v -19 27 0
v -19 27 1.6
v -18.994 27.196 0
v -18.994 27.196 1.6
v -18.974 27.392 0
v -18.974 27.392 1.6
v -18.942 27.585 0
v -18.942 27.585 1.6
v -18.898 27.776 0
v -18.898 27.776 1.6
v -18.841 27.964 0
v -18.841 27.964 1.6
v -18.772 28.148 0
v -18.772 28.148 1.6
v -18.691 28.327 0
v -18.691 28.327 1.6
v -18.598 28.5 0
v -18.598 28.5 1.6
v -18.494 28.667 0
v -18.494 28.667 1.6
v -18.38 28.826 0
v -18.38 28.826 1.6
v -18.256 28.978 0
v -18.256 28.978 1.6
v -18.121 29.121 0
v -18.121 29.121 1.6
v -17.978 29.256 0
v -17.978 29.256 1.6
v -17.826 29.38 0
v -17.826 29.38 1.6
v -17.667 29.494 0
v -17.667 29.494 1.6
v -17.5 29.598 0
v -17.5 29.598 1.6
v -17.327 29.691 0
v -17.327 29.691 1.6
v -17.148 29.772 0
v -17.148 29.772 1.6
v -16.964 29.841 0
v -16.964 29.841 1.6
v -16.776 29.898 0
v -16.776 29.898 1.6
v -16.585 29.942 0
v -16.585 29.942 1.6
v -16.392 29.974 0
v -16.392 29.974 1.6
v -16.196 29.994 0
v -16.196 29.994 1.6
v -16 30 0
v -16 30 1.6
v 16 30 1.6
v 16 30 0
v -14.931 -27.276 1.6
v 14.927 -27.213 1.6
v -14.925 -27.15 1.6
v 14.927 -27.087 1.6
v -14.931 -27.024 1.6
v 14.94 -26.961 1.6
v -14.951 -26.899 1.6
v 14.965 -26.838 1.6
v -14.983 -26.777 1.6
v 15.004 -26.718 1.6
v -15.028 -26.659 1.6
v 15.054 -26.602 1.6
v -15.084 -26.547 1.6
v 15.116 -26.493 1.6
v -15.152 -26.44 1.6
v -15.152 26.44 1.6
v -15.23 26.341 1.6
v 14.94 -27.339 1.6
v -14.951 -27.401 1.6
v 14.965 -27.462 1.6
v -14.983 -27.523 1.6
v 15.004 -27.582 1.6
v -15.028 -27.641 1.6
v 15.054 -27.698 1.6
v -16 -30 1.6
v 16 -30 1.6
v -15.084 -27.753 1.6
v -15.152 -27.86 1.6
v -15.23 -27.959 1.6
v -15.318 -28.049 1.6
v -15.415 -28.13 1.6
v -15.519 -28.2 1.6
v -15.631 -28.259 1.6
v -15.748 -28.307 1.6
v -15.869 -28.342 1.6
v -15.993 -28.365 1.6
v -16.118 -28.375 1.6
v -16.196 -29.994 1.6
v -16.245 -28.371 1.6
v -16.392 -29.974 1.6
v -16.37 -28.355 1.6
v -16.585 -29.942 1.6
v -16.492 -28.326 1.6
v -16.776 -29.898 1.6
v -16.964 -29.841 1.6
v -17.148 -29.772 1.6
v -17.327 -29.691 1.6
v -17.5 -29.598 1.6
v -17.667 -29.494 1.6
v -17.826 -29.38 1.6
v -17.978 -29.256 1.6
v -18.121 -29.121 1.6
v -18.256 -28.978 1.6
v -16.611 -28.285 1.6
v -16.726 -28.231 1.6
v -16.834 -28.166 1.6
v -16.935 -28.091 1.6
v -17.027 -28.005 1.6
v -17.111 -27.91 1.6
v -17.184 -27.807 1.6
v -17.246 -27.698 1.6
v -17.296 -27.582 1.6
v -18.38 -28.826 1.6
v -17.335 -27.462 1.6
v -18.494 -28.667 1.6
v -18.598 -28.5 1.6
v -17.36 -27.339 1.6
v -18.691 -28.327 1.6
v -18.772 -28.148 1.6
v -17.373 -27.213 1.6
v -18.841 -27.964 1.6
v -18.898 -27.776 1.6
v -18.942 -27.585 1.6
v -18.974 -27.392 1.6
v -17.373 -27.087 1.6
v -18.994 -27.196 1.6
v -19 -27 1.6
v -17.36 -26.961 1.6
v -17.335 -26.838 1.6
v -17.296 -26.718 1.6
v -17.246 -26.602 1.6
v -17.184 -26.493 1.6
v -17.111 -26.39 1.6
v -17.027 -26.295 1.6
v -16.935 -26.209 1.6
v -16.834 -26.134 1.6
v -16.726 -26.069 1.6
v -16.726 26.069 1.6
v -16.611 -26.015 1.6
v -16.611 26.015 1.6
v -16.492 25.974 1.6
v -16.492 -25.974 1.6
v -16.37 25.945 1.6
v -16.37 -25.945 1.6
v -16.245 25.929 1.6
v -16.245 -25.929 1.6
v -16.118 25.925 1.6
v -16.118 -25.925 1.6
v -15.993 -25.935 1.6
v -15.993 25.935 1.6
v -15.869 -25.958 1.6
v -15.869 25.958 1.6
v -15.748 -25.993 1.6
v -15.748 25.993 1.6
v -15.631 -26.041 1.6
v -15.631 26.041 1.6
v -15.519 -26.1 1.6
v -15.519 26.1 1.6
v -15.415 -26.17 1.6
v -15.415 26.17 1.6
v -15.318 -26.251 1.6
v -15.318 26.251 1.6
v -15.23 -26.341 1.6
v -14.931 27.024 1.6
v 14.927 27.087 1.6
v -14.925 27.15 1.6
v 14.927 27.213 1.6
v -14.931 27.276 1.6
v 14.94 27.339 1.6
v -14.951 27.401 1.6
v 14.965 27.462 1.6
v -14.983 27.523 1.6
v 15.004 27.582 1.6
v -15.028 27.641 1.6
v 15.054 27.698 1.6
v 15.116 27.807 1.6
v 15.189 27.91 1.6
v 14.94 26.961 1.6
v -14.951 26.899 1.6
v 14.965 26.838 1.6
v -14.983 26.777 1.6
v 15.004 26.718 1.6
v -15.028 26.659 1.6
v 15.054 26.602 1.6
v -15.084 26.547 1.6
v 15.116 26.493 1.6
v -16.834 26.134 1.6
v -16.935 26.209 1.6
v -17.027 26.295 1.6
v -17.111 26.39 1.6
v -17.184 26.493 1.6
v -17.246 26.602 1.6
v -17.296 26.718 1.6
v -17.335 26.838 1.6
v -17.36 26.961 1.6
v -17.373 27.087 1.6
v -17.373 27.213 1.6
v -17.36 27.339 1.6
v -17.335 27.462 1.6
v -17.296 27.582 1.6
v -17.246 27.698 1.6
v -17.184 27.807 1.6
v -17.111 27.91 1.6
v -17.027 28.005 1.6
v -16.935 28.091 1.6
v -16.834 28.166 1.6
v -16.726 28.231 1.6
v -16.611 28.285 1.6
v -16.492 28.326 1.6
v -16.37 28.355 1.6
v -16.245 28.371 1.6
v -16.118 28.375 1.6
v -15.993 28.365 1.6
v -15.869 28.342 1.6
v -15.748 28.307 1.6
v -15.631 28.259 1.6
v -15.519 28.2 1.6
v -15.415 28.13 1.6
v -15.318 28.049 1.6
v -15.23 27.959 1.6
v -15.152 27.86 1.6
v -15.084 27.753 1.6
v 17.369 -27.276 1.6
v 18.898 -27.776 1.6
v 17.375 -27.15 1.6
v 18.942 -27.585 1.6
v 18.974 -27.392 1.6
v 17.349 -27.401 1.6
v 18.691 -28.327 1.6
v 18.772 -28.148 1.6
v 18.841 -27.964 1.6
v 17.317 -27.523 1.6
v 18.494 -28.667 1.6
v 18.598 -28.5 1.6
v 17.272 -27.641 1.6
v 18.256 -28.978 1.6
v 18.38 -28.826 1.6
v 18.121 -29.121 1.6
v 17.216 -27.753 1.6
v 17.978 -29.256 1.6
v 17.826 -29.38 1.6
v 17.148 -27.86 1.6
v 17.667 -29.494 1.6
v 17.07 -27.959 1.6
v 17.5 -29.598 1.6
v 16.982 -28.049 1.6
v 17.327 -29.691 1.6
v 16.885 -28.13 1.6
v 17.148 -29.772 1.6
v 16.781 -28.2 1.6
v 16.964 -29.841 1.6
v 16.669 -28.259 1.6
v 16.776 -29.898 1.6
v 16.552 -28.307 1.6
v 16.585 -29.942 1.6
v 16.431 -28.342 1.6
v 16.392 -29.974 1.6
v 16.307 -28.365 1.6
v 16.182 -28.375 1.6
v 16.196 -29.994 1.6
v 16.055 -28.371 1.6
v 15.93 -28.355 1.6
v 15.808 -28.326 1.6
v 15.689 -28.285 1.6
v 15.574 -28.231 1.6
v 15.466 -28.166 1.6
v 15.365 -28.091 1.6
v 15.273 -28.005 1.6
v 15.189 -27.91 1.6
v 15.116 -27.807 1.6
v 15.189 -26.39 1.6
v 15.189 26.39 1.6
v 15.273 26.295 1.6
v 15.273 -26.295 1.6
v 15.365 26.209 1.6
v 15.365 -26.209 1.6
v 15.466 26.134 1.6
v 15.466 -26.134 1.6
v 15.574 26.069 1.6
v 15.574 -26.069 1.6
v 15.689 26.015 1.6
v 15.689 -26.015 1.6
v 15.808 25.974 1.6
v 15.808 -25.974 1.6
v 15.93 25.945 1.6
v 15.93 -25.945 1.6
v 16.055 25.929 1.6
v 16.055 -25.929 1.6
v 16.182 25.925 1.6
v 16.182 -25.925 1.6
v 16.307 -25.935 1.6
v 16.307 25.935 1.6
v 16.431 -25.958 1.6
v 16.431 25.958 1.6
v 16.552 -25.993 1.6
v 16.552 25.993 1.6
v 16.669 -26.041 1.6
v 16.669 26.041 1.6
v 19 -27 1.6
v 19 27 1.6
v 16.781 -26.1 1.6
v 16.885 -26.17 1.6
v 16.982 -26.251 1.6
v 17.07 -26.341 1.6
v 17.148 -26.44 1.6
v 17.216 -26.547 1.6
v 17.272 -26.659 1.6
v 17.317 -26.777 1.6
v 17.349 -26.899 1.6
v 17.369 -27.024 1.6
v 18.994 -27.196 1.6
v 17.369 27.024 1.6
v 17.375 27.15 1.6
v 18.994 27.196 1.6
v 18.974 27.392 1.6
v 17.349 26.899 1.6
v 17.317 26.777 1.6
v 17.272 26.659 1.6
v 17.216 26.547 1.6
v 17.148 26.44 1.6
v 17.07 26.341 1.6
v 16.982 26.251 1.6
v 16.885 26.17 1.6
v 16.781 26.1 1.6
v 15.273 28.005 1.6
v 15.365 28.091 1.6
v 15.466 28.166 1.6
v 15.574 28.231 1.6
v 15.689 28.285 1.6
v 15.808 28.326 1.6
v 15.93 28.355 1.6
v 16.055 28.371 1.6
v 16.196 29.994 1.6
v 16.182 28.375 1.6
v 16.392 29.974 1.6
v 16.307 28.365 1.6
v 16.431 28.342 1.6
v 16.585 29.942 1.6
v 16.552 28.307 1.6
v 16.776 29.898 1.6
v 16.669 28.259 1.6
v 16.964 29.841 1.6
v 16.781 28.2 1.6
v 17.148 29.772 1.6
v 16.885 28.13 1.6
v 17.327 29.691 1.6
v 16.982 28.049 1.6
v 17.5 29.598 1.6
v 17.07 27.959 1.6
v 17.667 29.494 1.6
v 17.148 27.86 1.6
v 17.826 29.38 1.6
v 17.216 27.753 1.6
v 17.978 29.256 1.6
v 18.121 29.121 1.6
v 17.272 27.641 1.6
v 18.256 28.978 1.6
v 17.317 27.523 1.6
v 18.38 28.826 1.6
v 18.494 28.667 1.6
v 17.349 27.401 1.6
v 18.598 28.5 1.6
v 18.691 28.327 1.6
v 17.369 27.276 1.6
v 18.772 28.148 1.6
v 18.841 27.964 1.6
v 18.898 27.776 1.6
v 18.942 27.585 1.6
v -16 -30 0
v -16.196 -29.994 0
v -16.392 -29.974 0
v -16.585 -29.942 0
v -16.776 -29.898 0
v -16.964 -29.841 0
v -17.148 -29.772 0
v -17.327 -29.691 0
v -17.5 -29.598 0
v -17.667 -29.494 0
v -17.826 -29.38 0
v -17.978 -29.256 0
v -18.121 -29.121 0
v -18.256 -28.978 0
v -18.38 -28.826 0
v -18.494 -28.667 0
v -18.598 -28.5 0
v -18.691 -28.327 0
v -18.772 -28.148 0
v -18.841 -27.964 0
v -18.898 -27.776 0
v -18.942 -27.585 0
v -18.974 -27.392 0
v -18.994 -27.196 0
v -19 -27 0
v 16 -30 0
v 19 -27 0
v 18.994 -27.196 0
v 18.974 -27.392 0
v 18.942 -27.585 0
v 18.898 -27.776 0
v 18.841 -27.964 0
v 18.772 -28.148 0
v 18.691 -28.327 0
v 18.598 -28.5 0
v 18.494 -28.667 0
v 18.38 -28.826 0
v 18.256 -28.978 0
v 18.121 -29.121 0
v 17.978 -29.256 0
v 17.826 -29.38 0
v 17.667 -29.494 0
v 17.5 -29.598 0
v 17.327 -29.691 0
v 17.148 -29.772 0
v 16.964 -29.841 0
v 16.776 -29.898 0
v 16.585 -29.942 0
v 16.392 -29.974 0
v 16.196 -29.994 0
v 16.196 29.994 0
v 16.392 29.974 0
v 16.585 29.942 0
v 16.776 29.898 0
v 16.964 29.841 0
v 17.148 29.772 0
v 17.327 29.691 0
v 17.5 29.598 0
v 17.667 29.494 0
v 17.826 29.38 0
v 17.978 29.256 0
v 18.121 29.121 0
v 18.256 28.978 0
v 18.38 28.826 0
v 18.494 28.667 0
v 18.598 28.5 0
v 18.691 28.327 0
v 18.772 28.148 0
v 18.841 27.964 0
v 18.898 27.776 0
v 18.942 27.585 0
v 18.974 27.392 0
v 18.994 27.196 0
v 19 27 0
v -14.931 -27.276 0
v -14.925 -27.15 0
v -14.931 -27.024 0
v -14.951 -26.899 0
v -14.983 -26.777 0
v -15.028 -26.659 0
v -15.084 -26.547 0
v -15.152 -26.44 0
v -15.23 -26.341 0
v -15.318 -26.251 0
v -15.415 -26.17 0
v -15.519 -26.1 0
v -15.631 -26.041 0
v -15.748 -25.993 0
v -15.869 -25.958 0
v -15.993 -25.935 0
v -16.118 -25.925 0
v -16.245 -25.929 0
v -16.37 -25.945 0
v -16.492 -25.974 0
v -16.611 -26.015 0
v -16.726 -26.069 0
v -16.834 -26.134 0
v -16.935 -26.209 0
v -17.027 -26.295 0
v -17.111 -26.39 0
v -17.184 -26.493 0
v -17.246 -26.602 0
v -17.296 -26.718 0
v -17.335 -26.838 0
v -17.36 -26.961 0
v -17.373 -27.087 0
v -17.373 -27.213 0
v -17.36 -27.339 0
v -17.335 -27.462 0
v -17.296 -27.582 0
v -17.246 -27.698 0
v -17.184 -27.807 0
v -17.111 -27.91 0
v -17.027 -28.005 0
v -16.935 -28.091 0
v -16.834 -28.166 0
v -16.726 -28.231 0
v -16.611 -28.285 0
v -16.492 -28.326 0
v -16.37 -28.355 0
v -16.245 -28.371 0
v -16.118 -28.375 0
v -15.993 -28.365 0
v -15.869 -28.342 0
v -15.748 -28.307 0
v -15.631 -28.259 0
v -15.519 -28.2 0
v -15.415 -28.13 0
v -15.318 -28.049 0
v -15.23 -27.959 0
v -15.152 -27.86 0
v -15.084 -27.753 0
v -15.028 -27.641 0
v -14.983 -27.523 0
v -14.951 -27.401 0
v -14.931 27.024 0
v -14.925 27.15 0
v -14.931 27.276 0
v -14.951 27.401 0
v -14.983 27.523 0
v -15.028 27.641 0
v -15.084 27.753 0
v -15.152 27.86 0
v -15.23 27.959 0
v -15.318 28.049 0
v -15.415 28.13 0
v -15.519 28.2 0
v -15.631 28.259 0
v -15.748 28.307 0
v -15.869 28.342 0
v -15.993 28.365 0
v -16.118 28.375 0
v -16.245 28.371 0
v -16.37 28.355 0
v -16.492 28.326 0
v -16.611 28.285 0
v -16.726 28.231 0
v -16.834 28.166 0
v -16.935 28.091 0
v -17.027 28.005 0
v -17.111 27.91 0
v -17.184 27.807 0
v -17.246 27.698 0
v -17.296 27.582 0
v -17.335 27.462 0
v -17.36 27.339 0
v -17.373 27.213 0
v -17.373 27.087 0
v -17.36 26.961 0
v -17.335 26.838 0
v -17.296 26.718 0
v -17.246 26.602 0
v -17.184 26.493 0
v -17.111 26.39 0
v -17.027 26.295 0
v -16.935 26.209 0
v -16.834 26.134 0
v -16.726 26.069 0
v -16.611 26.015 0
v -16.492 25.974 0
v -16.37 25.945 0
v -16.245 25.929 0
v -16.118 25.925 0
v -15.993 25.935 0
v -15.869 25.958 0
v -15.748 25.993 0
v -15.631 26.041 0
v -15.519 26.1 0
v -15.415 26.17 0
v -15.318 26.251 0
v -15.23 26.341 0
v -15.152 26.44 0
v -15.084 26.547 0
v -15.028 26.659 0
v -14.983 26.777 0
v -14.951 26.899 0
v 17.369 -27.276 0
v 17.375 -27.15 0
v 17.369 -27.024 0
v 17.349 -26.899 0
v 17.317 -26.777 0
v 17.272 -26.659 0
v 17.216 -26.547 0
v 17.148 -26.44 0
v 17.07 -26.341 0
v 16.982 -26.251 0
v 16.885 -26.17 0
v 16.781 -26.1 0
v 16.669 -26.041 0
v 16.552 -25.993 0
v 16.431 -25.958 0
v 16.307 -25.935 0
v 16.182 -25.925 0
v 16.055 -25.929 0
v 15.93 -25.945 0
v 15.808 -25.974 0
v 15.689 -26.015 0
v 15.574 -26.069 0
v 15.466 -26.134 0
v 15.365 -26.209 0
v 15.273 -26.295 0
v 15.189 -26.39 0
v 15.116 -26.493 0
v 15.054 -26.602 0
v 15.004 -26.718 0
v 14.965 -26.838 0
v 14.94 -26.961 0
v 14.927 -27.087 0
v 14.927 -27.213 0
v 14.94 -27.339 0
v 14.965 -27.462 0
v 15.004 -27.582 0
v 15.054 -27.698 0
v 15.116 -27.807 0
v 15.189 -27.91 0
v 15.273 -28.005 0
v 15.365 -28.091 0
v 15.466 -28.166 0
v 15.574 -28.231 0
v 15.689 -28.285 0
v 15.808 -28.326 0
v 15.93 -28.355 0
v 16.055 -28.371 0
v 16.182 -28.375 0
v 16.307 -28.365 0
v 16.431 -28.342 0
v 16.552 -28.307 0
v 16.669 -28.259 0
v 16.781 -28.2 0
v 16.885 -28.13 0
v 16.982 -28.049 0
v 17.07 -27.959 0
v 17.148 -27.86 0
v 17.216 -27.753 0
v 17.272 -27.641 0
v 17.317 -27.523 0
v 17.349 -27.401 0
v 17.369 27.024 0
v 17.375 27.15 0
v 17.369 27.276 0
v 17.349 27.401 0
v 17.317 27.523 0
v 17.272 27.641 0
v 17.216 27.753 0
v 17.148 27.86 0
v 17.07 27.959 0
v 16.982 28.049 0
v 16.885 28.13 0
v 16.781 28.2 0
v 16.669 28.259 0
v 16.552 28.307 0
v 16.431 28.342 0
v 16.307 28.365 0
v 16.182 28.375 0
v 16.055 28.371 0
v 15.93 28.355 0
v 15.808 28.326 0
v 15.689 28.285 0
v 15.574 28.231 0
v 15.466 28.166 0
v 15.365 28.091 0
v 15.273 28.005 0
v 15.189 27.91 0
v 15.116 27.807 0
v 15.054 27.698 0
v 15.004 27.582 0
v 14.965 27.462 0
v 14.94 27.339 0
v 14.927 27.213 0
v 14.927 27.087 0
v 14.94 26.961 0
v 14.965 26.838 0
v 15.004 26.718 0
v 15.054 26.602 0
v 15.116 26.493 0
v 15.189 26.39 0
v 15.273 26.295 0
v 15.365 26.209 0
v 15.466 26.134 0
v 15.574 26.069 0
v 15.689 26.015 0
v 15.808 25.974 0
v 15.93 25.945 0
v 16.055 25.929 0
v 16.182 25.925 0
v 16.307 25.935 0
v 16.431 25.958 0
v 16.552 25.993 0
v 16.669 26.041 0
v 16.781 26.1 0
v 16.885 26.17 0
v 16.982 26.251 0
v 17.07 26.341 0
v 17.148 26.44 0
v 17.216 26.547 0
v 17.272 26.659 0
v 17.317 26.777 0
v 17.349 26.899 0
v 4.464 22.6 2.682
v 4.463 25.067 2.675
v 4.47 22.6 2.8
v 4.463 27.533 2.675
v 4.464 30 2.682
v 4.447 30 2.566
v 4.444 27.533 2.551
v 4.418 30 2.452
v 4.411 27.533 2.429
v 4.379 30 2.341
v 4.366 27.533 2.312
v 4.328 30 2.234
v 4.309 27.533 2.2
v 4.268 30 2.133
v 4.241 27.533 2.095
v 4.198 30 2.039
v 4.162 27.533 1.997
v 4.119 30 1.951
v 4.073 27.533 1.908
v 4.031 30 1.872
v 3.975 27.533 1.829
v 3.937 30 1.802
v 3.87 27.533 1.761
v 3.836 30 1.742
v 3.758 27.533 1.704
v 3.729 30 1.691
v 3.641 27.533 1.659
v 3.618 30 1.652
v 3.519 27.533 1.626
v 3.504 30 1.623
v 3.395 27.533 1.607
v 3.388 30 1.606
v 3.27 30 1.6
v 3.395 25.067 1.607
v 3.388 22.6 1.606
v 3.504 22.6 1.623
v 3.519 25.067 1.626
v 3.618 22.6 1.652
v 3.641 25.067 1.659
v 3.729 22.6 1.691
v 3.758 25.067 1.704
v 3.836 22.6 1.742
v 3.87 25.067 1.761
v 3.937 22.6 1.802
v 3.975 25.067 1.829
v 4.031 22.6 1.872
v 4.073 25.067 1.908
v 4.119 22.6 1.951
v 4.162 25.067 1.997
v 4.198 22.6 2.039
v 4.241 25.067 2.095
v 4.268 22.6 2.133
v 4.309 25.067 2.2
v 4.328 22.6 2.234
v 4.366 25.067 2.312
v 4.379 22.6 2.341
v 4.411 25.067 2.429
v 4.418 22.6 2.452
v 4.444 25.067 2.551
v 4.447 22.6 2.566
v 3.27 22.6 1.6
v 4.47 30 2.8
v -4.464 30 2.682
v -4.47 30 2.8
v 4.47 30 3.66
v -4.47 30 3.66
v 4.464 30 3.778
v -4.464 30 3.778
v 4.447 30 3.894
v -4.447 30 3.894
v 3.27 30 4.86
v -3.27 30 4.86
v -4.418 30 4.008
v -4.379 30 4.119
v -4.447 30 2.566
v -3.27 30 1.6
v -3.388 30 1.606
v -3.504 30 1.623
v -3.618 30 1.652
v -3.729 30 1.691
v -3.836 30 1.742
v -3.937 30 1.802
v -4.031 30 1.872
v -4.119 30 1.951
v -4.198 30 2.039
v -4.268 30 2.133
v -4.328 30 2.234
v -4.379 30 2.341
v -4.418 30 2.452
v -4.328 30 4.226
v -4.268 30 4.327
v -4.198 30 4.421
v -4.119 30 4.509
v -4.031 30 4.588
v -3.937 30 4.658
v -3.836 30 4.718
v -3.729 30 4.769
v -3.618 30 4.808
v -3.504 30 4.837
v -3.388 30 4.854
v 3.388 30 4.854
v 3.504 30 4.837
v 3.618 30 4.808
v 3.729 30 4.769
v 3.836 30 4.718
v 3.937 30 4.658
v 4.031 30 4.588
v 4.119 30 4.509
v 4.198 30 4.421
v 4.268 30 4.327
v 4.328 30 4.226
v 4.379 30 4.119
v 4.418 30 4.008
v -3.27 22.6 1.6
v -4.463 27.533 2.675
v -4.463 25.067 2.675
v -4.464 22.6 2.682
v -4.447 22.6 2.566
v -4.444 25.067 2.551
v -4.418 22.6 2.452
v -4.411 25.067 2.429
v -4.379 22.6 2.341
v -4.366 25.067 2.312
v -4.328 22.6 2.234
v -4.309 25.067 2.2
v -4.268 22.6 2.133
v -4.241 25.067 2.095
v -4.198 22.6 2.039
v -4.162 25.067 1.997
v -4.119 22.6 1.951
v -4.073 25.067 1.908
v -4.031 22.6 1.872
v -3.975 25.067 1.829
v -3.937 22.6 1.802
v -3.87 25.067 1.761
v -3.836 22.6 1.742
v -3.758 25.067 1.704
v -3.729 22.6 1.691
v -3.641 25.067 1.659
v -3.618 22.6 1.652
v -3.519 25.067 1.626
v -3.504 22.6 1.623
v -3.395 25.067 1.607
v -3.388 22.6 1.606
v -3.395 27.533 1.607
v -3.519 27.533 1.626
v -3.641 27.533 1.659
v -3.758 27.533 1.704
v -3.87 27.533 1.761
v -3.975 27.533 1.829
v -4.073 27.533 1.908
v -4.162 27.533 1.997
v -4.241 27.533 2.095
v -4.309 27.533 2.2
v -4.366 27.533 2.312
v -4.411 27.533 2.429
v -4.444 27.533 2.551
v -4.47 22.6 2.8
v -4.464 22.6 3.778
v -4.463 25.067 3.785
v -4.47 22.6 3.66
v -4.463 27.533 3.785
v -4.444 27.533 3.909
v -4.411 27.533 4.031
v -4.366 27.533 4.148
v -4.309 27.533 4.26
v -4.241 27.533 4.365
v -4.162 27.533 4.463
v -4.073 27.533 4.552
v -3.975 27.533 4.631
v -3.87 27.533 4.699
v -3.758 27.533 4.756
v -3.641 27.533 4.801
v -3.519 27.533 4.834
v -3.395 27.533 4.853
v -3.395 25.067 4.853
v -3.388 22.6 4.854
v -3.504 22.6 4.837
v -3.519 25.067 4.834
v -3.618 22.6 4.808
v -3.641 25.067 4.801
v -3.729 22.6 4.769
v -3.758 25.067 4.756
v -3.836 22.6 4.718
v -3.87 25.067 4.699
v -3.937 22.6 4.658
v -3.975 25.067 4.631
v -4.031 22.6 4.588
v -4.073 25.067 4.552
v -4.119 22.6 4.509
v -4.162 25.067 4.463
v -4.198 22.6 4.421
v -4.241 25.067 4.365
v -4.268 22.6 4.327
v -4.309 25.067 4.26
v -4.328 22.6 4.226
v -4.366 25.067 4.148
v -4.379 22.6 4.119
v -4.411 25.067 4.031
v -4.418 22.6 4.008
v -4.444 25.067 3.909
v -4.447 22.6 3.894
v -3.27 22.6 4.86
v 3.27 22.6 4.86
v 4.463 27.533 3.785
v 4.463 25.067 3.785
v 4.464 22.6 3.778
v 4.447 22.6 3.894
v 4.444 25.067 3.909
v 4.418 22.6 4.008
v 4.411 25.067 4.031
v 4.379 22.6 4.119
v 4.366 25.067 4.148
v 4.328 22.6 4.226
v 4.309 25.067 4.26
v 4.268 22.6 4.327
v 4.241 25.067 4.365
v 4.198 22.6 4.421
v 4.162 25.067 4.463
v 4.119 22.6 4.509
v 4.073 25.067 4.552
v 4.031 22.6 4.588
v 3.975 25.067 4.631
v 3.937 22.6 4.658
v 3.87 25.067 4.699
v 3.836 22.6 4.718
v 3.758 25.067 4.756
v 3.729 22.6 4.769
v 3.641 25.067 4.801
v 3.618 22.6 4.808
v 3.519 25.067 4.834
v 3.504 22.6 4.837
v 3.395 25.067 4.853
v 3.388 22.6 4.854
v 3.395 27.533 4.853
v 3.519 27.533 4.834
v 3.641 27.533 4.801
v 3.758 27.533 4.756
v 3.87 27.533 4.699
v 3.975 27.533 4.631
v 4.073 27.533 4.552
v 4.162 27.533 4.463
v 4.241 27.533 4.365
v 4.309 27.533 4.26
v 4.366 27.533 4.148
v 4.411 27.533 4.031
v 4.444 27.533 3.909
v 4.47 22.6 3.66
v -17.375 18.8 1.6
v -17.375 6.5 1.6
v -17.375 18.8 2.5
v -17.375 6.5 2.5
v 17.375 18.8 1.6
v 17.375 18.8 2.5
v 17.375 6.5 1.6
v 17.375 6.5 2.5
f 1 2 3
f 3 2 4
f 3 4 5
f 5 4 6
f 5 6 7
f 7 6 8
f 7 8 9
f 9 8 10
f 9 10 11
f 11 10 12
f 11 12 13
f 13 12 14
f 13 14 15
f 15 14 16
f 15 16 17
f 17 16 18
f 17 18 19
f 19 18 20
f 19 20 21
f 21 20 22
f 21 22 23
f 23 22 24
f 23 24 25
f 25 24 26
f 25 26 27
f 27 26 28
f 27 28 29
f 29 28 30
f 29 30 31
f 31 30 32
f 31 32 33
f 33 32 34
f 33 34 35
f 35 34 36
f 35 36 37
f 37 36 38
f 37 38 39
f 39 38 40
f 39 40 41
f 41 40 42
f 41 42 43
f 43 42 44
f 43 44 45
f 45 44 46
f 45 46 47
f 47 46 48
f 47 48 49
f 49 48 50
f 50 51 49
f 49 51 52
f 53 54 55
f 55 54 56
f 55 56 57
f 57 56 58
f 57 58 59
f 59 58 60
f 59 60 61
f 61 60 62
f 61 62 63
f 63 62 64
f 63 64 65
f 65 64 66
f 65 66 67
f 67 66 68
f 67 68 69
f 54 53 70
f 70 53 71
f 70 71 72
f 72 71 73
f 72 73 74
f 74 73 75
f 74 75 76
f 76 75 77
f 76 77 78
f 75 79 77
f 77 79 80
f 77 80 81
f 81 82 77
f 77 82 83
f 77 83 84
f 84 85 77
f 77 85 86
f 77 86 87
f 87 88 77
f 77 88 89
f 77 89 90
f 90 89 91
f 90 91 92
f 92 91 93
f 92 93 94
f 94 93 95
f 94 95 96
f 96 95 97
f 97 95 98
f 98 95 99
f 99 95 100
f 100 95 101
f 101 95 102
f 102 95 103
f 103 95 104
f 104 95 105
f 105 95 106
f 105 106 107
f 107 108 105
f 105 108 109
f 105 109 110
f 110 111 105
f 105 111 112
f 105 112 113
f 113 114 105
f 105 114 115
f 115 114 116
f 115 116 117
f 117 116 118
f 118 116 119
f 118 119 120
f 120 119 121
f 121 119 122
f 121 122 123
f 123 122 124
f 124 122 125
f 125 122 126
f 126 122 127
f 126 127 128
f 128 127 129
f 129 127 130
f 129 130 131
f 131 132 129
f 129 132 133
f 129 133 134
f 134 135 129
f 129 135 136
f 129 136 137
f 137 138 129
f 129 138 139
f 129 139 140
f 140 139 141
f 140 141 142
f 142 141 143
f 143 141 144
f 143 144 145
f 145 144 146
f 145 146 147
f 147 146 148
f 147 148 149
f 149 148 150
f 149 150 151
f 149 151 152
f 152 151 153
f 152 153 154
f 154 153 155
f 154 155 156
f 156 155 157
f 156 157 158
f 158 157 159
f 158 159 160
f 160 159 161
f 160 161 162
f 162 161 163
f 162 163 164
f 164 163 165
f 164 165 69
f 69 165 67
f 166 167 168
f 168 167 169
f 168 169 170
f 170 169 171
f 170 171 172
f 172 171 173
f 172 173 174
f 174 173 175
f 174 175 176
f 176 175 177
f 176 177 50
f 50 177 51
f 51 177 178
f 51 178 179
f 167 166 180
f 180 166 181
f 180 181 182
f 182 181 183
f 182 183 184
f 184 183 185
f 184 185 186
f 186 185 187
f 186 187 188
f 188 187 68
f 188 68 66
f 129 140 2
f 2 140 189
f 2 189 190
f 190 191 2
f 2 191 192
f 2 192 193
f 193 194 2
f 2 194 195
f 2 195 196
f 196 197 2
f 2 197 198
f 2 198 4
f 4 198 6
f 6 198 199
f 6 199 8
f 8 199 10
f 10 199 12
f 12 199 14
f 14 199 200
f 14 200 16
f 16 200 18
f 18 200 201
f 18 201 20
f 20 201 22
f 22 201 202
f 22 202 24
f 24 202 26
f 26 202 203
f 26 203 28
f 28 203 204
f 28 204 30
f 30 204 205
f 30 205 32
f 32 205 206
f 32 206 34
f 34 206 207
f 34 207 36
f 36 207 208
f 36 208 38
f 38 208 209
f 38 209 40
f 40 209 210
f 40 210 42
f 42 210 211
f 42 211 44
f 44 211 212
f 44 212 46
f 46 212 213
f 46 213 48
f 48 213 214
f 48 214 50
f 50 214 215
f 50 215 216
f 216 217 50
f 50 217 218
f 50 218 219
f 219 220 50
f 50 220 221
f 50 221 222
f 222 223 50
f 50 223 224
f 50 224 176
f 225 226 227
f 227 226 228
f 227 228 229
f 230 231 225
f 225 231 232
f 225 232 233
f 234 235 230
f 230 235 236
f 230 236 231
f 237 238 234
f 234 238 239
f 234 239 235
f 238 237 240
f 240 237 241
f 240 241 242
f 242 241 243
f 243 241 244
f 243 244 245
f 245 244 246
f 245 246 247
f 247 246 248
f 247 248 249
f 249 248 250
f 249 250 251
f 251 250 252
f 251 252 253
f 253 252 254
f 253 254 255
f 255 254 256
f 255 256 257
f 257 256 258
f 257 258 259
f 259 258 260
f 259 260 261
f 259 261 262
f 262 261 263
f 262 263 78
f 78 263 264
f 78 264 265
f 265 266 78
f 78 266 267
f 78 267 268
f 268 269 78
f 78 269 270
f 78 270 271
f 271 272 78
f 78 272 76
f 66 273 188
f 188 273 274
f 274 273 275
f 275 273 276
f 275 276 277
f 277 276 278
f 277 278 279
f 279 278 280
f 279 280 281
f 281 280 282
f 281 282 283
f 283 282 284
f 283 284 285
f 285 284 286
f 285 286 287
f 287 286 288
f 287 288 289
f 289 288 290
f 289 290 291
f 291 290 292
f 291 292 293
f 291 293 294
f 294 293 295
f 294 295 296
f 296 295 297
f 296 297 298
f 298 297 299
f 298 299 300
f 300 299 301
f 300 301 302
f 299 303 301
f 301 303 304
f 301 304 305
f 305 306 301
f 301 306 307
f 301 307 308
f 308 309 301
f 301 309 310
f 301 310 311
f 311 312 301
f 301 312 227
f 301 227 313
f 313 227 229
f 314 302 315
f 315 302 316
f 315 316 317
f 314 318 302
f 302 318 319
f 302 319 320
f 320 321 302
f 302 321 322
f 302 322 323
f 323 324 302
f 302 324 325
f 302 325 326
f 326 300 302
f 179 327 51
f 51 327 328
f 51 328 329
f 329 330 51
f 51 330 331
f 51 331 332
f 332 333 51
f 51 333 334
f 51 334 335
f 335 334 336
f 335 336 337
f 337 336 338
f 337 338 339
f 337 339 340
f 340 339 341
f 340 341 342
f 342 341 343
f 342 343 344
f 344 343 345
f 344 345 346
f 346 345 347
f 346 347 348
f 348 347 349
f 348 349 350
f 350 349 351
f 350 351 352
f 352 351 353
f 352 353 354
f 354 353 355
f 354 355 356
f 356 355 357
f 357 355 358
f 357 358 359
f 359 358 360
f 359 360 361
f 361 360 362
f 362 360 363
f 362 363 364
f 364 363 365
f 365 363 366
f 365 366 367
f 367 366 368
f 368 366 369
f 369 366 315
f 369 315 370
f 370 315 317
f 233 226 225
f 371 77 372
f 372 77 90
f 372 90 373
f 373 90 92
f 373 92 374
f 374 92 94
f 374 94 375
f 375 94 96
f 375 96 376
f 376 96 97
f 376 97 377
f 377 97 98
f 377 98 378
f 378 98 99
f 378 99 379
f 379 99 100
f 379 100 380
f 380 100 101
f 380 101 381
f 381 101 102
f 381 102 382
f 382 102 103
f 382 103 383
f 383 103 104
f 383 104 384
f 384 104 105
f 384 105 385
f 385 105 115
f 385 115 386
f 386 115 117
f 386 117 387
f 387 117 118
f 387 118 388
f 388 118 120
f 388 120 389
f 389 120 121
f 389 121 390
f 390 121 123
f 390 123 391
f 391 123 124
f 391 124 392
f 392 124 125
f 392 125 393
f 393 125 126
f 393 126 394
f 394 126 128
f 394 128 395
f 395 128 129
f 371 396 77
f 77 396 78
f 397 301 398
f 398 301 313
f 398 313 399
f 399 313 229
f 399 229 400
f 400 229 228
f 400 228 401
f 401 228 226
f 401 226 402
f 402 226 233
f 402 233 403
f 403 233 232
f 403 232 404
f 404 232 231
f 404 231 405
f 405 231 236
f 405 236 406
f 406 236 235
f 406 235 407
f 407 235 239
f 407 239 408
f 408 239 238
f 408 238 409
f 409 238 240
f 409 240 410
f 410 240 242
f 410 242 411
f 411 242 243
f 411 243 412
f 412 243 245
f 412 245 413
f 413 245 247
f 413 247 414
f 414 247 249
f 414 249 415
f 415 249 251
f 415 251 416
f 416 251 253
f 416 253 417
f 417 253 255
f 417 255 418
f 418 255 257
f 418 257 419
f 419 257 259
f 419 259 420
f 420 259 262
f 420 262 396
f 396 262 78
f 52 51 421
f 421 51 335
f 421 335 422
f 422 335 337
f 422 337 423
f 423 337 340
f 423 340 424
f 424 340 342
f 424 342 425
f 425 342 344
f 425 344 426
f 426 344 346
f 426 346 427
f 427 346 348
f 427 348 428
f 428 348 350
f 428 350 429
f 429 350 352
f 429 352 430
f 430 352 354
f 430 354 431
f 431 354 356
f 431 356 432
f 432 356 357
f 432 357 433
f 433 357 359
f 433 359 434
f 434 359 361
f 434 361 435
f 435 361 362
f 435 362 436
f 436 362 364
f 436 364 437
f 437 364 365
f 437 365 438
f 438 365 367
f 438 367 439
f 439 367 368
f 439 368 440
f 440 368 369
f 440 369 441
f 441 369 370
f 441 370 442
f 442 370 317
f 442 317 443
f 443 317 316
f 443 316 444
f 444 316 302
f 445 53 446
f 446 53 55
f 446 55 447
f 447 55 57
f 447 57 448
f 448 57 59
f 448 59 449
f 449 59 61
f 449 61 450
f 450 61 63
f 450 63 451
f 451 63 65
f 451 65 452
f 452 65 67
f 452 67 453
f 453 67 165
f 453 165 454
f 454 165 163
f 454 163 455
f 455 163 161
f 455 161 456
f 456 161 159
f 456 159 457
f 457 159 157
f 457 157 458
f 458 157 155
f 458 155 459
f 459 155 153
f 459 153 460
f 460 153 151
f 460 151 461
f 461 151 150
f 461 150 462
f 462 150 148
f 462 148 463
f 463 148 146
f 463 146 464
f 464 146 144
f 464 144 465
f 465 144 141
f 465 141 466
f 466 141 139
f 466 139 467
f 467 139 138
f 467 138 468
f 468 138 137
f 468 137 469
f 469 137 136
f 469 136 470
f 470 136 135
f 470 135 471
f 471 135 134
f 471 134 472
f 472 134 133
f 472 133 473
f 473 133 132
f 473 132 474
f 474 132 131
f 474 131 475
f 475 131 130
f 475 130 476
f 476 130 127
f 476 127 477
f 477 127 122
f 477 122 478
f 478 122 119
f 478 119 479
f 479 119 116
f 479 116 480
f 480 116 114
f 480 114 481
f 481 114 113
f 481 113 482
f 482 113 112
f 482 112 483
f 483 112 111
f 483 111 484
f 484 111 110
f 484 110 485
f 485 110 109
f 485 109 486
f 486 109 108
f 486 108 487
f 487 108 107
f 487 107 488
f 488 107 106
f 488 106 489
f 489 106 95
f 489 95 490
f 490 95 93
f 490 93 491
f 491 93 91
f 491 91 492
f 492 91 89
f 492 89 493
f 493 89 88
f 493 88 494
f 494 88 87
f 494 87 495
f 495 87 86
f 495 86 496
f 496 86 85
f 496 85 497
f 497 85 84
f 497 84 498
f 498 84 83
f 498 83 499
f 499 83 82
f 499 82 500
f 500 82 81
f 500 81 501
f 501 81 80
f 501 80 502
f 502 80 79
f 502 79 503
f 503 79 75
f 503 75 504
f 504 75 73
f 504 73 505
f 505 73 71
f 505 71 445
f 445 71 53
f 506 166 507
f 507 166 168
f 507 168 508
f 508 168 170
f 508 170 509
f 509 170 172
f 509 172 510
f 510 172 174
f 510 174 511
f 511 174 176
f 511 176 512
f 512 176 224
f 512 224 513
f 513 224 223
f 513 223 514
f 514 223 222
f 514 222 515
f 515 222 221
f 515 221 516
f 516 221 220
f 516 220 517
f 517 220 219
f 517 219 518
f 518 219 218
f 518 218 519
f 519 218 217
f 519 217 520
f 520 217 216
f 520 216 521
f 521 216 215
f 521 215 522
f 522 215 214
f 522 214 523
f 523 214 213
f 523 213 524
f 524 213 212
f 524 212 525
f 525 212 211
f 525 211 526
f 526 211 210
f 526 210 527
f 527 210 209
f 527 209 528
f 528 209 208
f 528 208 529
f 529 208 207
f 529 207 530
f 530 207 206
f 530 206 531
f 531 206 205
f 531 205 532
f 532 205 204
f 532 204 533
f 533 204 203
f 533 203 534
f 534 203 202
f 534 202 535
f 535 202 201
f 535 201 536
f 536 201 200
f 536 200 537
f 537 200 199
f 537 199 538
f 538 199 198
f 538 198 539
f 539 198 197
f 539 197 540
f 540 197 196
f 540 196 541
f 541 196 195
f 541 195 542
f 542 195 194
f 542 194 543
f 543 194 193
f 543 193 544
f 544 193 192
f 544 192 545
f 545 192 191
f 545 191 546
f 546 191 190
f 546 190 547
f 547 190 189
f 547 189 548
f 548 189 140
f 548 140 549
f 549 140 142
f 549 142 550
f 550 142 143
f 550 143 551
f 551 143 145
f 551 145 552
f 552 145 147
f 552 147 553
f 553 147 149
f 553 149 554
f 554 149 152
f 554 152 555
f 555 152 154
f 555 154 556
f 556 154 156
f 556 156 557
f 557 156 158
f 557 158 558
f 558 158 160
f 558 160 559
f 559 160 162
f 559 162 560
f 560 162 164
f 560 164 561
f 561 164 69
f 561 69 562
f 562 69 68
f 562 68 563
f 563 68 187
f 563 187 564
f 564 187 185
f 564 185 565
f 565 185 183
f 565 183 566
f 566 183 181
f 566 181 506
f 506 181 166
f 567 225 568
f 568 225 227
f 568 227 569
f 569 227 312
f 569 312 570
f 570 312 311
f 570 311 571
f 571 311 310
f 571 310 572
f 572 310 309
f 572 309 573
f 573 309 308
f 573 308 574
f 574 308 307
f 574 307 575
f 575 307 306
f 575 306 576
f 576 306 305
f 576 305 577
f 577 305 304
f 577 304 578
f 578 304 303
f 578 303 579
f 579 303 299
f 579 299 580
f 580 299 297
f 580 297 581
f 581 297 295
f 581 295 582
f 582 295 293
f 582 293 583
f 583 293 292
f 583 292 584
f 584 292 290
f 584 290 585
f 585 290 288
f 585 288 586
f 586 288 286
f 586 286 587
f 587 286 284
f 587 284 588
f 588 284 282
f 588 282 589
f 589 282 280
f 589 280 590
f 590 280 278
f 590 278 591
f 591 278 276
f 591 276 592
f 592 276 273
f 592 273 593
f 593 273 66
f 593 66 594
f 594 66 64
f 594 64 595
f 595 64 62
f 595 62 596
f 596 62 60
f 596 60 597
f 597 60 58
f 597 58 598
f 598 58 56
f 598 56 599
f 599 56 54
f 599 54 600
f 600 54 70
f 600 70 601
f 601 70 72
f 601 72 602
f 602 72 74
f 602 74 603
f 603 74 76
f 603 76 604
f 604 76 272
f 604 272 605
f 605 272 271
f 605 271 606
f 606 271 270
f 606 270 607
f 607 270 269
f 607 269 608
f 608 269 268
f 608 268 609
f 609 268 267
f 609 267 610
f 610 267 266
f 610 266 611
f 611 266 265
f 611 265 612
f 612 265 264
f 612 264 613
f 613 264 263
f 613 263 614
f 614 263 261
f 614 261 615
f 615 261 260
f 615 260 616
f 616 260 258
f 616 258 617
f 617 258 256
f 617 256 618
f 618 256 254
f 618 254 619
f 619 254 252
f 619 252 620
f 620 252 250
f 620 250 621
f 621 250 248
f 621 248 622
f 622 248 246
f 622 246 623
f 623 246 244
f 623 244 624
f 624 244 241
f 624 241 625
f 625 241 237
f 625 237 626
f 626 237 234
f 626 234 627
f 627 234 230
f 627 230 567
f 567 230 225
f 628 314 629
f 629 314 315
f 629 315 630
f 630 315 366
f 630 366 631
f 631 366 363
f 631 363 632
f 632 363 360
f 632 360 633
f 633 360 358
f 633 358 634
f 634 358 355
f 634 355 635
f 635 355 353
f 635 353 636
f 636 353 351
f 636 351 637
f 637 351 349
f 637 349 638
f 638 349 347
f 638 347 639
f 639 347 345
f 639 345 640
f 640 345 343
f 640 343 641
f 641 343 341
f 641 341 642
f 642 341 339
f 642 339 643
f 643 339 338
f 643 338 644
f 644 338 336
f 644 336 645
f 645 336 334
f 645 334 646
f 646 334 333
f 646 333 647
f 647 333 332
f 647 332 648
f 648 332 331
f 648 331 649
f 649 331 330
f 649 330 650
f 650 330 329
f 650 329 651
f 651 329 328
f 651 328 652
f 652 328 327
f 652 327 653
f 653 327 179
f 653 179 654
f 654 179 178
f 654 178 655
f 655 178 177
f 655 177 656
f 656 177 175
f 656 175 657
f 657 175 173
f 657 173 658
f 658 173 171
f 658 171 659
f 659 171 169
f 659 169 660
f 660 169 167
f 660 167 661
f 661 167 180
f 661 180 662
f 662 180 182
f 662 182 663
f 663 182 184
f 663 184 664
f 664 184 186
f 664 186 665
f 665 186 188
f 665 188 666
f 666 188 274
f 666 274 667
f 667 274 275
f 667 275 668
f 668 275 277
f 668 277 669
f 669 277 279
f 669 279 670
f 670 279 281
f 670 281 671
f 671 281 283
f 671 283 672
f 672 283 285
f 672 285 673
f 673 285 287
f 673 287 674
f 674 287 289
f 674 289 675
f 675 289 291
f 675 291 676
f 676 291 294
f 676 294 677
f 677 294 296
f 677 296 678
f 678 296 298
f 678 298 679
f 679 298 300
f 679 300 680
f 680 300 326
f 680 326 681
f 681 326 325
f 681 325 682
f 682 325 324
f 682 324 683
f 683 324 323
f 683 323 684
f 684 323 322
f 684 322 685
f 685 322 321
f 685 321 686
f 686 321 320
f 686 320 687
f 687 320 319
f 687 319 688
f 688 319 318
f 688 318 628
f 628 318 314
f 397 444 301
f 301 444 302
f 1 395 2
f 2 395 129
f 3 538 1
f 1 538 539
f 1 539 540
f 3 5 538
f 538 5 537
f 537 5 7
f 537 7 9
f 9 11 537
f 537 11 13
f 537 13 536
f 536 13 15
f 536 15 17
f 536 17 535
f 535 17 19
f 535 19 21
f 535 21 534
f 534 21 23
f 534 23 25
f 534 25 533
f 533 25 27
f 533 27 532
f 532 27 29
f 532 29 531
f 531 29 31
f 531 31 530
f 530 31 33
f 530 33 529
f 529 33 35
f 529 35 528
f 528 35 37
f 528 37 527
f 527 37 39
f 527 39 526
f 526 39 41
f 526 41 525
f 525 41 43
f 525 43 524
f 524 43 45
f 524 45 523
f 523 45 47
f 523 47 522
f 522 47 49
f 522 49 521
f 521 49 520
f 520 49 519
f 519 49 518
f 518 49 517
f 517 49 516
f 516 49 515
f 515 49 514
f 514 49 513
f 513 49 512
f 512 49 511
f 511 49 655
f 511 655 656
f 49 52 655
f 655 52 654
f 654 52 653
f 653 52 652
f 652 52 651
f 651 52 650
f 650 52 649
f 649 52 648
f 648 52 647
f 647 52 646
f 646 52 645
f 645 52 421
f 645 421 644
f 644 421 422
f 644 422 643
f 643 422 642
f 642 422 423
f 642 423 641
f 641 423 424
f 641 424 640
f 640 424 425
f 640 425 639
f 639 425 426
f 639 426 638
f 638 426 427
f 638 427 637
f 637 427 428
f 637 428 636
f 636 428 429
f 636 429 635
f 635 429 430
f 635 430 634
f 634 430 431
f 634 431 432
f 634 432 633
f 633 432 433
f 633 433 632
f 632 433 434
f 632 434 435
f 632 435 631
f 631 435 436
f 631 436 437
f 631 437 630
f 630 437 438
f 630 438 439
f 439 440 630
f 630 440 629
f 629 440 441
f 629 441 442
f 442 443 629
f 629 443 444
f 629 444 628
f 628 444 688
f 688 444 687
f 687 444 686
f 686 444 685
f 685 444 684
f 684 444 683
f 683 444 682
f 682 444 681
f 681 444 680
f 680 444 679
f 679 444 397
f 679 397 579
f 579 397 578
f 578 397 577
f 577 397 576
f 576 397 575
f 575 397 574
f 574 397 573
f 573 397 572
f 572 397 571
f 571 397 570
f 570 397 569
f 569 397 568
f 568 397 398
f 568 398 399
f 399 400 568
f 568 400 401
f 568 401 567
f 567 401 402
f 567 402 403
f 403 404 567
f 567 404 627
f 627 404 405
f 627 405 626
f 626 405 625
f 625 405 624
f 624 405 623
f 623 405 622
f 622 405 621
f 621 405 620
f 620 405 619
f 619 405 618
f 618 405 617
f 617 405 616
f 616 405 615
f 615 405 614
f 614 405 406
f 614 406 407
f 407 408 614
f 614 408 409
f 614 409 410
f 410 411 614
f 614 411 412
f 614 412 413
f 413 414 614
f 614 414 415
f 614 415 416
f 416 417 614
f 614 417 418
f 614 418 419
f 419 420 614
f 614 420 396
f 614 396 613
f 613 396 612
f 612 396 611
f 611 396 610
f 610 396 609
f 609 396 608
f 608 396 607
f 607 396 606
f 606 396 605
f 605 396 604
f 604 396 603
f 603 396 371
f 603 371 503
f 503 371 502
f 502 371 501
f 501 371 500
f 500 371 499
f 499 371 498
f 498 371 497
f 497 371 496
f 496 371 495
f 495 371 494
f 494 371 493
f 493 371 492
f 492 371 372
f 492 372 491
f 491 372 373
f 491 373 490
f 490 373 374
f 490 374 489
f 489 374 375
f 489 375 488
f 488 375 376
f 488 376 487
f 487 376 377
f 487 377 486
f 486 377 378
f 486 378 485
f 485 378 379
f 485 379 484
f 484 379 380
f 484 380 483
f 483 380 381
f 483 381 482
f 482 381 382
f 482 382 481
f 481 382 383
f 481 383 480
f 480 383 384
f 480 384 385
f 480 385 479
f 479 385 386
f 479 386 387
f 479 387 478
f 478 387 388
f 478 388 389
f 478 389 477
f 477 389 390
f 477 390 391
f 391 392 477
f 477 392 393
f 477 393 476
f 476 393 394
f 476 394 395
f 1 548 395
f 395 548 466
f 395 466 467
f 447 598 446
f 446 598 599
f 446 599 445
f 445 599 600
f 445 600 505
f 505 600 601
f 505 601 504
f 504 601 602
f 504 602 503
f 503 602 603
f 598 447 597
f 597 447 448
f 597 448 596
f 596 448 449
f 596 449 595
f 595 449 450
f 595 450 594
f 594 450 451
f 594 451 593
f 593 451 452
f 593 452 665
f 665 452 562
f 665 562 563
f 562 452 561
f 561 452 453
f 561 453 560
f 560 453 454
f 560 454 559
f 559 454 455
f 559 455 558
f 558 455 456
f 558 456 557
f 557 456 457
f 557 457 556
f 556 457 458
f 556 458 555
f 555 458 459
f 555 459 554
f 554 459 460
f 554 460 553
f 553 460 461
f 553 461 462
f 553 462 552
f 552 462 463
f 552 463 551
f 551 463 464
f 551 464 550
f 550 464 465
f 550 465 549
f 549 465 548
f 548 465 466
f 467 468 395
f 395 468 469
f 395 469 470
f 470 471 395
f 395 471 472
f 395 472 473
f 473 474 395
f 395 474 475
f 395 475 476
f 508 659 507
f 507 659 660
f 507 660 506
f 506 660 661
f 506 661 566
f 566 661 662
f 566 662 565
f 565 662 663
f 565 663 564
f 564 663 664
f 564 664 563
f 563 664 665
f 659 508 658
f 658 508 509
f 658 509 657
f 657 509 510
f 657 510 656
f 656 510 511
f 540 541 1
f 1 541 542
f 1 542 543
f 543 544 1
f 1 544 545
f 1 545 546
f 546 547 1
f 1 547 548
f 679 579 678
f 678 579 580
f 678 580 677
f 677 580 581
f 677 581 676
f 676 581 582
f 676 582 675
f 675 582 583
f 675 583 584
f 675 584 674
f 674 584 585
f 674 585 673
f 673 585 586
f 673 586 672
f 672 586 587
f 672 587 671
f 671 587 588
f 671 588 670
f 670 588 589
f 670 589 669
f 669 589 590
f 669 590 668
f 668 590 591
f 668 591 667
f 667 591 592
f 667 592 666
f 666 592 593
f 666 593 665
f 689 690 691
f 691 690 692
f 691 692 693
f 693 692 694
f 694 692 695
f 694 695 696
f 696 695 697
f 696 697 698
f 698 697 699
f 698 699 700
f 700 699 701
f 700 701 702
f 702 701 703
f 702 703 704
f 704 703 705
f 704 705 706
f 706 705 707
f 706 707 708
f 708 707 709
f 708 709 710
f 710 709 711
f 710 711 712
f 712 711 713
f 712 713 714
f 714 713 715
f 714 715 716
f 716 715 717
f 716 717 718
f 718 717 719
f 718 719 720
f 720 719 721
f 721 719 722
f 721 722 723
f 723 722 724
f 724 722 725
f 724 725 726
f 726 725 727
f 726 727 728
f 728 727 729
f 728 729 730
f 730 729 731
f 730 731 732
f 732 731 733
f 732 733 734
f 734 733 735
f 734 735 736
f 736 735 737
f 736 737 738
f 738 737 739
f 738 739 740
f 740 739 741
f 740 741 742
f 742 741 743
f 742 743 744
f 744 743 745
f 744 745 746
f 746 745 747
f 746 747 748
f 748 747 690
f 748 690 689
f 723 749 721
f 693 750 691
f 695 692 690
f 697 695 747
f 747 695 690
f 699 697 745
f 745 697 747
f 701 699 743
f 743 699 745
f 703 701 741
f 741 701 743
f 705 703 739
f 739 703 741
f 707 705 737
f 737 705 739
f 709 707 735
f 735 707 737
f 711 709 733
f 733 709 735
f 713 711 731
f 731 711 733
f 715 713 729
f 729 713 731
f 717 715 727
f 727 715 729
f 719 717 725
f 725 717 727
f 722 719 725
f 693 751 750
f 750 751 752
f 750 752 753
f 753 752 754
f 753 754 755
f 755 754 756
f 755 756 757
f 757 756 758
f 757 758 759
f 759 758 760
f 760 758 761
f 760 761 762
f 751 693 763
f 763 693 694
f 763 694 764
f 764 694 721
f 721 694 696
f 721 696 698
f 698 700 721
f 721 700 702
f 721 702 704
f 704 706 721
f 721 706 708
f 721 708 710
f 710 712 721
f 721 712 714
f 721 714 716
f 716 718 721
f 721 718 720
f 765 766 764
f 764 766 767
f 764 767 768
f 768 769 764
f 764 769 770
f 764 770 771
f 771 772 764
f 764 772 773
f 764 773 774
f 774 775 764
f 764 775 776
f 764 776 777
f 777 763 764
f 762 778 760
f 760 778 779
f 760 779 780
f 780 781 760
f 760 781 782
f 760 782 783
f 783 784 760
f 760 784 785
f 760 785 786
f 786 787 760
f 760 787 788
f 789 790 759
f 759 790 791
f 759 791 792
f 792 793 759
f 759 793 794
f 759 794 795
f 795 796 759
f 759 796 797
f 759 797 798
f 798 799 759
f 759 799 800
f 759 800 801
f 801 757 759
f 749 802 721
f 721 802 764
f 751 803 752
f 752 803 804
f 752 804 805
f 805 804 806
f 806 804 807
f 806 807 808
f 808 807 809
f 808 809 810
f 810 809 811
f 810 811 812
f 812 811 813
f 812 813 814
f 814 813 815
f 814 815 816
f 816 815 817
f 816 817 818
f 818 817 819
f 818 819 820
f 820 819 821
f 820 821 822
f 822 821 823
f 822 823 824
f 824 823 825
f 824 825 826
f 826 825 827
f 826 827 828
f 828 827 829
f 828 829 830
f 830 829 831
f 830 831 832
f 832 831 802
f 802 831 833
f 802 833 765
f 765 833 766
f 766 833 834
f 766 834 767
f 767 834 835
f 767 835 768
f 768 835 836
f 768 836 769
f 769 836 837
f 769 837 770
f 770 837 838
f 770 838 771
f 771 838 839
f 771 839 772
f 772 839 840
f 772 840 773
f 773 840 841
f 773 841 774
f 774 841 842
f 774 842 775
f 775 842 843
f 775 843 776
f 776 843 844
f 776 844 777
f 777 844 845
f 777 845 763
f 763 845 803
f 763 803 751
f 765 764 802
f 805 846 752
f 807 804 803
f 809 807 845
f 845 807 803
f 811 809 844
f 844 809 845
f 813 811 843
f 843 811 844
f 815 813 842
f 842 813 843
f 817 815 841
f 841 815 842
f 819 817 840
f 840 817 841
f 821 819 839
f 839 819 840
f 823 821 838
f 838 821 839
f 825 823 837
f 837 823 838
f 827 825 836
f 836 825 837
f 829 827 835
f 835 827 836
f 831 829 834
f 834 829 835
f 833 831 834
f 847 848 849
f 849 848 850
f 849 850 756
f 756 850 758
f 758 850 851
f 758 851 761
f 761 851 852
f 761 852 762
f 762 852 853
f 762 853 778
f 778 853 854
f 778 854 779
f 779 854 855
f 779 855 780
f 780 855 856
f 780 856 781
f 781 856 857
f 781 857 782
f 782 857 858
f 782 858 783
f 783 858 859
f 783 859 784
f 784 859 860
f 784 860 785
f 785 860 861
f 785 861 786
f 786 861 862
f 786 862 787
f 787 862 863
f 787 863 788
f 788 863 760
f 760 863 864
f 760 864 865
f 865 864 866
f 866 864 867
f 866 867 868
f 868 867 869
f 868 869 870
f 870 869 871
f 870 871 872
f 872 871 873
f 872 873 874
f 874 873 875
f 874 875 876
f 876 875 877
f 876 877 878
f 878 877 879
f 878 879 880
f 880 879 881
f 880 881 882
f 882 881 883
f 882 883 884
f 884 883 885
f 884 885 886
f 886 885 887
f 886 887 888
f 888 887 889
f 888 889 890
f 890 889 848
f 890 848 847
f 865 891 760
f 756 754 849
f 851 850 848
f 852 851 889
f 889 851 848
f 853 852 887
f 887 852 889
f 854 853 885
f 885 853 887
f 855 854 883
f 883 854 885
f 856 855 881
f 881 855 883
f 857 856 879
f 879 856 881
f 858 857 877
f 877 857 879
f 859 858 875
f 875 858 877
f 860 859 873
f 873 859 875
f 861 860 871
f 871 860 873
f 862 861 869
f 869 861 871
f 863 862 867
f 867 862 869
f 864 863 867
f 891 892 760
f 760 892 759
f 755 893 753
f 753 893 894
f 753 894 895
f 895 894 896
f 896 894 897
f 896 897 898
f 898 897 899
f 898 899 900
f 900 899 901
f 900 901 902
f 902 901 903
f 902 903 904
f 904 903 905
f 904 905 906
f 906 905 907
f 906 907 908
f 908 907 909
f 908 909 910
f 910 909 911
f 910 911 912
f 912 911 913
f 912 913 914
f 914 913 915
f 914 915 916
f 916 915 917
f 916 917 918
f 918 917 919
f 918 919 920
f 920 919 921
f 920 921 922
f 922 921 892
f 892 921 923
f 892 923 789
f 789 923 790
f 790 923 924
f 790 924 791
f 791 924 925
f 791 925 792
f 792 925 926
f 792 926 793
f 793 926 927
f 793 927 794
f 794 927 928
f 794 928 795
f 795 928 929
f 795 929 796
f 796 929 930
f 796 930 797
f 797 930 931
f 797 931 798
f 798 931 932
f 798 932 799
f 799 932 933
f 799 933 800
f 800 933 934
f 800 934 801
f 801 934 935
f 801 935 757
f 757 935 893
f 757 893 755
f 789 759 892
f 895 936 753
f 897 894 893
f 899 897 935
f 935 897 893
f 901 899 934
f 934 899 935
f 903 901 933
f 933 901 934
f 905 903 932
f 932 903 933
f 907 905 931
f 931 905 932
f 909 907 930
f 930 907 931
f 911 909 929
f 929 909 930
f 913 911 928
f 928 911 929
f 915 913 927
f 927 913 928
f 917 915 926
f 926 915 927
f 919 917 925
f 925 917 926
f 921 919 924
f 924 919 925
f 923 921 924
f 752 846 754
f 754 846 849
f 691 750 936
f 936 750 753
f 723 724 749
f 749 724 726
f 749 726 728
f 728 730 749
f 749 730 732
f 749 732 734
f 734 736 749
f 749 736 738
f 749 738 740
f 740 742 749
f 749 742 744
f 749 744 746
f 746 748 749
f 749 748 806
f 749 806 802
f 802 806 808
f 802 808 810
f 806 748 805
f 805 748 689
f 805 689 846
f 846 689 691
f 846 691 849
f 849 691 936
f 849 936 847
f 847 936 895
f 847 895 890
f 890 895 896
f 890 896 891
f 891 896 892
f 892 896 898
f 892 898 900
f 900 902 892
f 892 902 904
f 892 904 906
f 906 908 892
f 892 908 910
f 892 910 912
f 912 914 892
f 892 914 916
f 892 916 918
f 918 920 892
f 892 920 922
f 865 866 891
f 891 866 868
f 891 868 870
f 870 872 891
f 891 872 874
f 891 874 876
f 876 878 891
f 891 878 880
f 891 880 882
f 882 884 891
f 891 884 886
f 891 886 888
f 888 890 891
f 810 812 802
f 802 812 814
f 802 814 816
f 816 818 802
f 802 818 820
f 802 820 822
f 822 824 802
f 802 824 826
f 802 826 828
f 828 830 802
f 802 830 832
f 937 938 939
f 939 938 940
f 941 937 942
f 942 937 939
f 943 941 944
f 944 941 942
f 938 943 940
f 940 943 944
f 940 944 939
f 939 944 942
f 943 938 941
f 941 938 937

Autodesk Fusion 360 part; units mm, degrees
sketch "PCB" plane through (0, 0, 0) normal (0, 0, 1) x (1, 0, 0)
  line L0 (19, -30) -> (-19, -30)
  line L1 (-19, -30) -> (-19, 30)
  line L2 (-19, 30) -> (19, 30)
  line L3 (19, 30) -> (19, -30)
  line L4 (19, -30) -> (-19, 30) construction
  line L5 (-19, -30) -> (19, 30) construction
  dimension "d1" = 38
  dimension "d2" = 60
extrude "Extrude1" add sketch "PCB" along normal blind 1.6 makes body 1
sketch "Components & Holes" plane through (0, 0, 1.6) normal (0, 0, 1) x (-1, 0, 0)
  line L0 (-19, -30) -> (19, -30)
  line L1 (19, -30) -> (19, 30)
  line L2 (19, 30) -> (-19, 30)
  line L3 (-19, 30) -> (-19, -30)
  line L4 (4.47, -30) -> (-4.47, -30)
  line L5 (-4.47, -30) -> (-4.47, -22.6)
  line L6 (-4.47, -22.6) -> (4.47, -22.6)
  line L7 (4.47, -22.6) -> (4.47, -30)
  line L8 (0, -30) -> (0, 30) construction
  line L9 (0, -22.6) -> (0, -30) construction
  circle A0 centre (-16.15, -27.15) radius 1.225
  circle A1 centre (-16.15, 27.15) radius 1.225
  circle A2 centre (16.15, 27.15) radius 1.225
  circle A3 centre (16.15, -27.15) radius 1.225
  line L10 (17.375, -18.8) -> (-17.375, -18.8)
  line L11 (-17.375, -18.8) -> (-17.375, -6.5)
  line L12 (-17.375, -6.5) -> (17.375, -6.5)
  line L13 (17.375, -6.5) -> (17.375, -18.8)
  line L14 (17.375, -18.8) -> (-17.375, -6.5) construction
  line L15 (-17.375, -18.8) -> (17.375, -6.5) construction
  point P0 (0, -12.65)
  dimension "d5" = 8.94
  dimension "d6" = 7.4
  dimension "d9" = 2.45
  dimension "d10" = 2.85
  dimension "d11" = 2.85
  dimension "d12" = 2.45
  dimension "d13" = 2.85
  dimension "d14" = 2.85
  dimension "d15" = 34.75
  dimension "d16" = 12.3
  dimension "d17" = 11.2
extrude "Extrude2" add sketch "Components & Holes" along normal blind 3.26 separate body contours L0 L4 L5 L6 L7 makes body 2
extrude "Extrude3" add sketch "Components & Holes" along normal blind 0.9 separate body contours L10 L11 L12 L13 makes body 3
extrude "Extrude4" cut sketch "Components & Holes" against normal up to surface (1.6 mm away) contours A0 | A1 | A2 | A3 bodies 1
fillet "Fillet1" radius 3 4 edges at (19, 30, 0.8) (19, -30, 0.8) (-19, -30, 0.8) (-19, 30, 0.8) on bodies 1
fillet "Fillet2" radius 1.2 4 edges at (4.47, 26.3, 4.86) (-4.47, 26.3, 4.86) (-4.47, 26.3, 1.6) (4.47, 26.3, 1.6) on bodies 2
